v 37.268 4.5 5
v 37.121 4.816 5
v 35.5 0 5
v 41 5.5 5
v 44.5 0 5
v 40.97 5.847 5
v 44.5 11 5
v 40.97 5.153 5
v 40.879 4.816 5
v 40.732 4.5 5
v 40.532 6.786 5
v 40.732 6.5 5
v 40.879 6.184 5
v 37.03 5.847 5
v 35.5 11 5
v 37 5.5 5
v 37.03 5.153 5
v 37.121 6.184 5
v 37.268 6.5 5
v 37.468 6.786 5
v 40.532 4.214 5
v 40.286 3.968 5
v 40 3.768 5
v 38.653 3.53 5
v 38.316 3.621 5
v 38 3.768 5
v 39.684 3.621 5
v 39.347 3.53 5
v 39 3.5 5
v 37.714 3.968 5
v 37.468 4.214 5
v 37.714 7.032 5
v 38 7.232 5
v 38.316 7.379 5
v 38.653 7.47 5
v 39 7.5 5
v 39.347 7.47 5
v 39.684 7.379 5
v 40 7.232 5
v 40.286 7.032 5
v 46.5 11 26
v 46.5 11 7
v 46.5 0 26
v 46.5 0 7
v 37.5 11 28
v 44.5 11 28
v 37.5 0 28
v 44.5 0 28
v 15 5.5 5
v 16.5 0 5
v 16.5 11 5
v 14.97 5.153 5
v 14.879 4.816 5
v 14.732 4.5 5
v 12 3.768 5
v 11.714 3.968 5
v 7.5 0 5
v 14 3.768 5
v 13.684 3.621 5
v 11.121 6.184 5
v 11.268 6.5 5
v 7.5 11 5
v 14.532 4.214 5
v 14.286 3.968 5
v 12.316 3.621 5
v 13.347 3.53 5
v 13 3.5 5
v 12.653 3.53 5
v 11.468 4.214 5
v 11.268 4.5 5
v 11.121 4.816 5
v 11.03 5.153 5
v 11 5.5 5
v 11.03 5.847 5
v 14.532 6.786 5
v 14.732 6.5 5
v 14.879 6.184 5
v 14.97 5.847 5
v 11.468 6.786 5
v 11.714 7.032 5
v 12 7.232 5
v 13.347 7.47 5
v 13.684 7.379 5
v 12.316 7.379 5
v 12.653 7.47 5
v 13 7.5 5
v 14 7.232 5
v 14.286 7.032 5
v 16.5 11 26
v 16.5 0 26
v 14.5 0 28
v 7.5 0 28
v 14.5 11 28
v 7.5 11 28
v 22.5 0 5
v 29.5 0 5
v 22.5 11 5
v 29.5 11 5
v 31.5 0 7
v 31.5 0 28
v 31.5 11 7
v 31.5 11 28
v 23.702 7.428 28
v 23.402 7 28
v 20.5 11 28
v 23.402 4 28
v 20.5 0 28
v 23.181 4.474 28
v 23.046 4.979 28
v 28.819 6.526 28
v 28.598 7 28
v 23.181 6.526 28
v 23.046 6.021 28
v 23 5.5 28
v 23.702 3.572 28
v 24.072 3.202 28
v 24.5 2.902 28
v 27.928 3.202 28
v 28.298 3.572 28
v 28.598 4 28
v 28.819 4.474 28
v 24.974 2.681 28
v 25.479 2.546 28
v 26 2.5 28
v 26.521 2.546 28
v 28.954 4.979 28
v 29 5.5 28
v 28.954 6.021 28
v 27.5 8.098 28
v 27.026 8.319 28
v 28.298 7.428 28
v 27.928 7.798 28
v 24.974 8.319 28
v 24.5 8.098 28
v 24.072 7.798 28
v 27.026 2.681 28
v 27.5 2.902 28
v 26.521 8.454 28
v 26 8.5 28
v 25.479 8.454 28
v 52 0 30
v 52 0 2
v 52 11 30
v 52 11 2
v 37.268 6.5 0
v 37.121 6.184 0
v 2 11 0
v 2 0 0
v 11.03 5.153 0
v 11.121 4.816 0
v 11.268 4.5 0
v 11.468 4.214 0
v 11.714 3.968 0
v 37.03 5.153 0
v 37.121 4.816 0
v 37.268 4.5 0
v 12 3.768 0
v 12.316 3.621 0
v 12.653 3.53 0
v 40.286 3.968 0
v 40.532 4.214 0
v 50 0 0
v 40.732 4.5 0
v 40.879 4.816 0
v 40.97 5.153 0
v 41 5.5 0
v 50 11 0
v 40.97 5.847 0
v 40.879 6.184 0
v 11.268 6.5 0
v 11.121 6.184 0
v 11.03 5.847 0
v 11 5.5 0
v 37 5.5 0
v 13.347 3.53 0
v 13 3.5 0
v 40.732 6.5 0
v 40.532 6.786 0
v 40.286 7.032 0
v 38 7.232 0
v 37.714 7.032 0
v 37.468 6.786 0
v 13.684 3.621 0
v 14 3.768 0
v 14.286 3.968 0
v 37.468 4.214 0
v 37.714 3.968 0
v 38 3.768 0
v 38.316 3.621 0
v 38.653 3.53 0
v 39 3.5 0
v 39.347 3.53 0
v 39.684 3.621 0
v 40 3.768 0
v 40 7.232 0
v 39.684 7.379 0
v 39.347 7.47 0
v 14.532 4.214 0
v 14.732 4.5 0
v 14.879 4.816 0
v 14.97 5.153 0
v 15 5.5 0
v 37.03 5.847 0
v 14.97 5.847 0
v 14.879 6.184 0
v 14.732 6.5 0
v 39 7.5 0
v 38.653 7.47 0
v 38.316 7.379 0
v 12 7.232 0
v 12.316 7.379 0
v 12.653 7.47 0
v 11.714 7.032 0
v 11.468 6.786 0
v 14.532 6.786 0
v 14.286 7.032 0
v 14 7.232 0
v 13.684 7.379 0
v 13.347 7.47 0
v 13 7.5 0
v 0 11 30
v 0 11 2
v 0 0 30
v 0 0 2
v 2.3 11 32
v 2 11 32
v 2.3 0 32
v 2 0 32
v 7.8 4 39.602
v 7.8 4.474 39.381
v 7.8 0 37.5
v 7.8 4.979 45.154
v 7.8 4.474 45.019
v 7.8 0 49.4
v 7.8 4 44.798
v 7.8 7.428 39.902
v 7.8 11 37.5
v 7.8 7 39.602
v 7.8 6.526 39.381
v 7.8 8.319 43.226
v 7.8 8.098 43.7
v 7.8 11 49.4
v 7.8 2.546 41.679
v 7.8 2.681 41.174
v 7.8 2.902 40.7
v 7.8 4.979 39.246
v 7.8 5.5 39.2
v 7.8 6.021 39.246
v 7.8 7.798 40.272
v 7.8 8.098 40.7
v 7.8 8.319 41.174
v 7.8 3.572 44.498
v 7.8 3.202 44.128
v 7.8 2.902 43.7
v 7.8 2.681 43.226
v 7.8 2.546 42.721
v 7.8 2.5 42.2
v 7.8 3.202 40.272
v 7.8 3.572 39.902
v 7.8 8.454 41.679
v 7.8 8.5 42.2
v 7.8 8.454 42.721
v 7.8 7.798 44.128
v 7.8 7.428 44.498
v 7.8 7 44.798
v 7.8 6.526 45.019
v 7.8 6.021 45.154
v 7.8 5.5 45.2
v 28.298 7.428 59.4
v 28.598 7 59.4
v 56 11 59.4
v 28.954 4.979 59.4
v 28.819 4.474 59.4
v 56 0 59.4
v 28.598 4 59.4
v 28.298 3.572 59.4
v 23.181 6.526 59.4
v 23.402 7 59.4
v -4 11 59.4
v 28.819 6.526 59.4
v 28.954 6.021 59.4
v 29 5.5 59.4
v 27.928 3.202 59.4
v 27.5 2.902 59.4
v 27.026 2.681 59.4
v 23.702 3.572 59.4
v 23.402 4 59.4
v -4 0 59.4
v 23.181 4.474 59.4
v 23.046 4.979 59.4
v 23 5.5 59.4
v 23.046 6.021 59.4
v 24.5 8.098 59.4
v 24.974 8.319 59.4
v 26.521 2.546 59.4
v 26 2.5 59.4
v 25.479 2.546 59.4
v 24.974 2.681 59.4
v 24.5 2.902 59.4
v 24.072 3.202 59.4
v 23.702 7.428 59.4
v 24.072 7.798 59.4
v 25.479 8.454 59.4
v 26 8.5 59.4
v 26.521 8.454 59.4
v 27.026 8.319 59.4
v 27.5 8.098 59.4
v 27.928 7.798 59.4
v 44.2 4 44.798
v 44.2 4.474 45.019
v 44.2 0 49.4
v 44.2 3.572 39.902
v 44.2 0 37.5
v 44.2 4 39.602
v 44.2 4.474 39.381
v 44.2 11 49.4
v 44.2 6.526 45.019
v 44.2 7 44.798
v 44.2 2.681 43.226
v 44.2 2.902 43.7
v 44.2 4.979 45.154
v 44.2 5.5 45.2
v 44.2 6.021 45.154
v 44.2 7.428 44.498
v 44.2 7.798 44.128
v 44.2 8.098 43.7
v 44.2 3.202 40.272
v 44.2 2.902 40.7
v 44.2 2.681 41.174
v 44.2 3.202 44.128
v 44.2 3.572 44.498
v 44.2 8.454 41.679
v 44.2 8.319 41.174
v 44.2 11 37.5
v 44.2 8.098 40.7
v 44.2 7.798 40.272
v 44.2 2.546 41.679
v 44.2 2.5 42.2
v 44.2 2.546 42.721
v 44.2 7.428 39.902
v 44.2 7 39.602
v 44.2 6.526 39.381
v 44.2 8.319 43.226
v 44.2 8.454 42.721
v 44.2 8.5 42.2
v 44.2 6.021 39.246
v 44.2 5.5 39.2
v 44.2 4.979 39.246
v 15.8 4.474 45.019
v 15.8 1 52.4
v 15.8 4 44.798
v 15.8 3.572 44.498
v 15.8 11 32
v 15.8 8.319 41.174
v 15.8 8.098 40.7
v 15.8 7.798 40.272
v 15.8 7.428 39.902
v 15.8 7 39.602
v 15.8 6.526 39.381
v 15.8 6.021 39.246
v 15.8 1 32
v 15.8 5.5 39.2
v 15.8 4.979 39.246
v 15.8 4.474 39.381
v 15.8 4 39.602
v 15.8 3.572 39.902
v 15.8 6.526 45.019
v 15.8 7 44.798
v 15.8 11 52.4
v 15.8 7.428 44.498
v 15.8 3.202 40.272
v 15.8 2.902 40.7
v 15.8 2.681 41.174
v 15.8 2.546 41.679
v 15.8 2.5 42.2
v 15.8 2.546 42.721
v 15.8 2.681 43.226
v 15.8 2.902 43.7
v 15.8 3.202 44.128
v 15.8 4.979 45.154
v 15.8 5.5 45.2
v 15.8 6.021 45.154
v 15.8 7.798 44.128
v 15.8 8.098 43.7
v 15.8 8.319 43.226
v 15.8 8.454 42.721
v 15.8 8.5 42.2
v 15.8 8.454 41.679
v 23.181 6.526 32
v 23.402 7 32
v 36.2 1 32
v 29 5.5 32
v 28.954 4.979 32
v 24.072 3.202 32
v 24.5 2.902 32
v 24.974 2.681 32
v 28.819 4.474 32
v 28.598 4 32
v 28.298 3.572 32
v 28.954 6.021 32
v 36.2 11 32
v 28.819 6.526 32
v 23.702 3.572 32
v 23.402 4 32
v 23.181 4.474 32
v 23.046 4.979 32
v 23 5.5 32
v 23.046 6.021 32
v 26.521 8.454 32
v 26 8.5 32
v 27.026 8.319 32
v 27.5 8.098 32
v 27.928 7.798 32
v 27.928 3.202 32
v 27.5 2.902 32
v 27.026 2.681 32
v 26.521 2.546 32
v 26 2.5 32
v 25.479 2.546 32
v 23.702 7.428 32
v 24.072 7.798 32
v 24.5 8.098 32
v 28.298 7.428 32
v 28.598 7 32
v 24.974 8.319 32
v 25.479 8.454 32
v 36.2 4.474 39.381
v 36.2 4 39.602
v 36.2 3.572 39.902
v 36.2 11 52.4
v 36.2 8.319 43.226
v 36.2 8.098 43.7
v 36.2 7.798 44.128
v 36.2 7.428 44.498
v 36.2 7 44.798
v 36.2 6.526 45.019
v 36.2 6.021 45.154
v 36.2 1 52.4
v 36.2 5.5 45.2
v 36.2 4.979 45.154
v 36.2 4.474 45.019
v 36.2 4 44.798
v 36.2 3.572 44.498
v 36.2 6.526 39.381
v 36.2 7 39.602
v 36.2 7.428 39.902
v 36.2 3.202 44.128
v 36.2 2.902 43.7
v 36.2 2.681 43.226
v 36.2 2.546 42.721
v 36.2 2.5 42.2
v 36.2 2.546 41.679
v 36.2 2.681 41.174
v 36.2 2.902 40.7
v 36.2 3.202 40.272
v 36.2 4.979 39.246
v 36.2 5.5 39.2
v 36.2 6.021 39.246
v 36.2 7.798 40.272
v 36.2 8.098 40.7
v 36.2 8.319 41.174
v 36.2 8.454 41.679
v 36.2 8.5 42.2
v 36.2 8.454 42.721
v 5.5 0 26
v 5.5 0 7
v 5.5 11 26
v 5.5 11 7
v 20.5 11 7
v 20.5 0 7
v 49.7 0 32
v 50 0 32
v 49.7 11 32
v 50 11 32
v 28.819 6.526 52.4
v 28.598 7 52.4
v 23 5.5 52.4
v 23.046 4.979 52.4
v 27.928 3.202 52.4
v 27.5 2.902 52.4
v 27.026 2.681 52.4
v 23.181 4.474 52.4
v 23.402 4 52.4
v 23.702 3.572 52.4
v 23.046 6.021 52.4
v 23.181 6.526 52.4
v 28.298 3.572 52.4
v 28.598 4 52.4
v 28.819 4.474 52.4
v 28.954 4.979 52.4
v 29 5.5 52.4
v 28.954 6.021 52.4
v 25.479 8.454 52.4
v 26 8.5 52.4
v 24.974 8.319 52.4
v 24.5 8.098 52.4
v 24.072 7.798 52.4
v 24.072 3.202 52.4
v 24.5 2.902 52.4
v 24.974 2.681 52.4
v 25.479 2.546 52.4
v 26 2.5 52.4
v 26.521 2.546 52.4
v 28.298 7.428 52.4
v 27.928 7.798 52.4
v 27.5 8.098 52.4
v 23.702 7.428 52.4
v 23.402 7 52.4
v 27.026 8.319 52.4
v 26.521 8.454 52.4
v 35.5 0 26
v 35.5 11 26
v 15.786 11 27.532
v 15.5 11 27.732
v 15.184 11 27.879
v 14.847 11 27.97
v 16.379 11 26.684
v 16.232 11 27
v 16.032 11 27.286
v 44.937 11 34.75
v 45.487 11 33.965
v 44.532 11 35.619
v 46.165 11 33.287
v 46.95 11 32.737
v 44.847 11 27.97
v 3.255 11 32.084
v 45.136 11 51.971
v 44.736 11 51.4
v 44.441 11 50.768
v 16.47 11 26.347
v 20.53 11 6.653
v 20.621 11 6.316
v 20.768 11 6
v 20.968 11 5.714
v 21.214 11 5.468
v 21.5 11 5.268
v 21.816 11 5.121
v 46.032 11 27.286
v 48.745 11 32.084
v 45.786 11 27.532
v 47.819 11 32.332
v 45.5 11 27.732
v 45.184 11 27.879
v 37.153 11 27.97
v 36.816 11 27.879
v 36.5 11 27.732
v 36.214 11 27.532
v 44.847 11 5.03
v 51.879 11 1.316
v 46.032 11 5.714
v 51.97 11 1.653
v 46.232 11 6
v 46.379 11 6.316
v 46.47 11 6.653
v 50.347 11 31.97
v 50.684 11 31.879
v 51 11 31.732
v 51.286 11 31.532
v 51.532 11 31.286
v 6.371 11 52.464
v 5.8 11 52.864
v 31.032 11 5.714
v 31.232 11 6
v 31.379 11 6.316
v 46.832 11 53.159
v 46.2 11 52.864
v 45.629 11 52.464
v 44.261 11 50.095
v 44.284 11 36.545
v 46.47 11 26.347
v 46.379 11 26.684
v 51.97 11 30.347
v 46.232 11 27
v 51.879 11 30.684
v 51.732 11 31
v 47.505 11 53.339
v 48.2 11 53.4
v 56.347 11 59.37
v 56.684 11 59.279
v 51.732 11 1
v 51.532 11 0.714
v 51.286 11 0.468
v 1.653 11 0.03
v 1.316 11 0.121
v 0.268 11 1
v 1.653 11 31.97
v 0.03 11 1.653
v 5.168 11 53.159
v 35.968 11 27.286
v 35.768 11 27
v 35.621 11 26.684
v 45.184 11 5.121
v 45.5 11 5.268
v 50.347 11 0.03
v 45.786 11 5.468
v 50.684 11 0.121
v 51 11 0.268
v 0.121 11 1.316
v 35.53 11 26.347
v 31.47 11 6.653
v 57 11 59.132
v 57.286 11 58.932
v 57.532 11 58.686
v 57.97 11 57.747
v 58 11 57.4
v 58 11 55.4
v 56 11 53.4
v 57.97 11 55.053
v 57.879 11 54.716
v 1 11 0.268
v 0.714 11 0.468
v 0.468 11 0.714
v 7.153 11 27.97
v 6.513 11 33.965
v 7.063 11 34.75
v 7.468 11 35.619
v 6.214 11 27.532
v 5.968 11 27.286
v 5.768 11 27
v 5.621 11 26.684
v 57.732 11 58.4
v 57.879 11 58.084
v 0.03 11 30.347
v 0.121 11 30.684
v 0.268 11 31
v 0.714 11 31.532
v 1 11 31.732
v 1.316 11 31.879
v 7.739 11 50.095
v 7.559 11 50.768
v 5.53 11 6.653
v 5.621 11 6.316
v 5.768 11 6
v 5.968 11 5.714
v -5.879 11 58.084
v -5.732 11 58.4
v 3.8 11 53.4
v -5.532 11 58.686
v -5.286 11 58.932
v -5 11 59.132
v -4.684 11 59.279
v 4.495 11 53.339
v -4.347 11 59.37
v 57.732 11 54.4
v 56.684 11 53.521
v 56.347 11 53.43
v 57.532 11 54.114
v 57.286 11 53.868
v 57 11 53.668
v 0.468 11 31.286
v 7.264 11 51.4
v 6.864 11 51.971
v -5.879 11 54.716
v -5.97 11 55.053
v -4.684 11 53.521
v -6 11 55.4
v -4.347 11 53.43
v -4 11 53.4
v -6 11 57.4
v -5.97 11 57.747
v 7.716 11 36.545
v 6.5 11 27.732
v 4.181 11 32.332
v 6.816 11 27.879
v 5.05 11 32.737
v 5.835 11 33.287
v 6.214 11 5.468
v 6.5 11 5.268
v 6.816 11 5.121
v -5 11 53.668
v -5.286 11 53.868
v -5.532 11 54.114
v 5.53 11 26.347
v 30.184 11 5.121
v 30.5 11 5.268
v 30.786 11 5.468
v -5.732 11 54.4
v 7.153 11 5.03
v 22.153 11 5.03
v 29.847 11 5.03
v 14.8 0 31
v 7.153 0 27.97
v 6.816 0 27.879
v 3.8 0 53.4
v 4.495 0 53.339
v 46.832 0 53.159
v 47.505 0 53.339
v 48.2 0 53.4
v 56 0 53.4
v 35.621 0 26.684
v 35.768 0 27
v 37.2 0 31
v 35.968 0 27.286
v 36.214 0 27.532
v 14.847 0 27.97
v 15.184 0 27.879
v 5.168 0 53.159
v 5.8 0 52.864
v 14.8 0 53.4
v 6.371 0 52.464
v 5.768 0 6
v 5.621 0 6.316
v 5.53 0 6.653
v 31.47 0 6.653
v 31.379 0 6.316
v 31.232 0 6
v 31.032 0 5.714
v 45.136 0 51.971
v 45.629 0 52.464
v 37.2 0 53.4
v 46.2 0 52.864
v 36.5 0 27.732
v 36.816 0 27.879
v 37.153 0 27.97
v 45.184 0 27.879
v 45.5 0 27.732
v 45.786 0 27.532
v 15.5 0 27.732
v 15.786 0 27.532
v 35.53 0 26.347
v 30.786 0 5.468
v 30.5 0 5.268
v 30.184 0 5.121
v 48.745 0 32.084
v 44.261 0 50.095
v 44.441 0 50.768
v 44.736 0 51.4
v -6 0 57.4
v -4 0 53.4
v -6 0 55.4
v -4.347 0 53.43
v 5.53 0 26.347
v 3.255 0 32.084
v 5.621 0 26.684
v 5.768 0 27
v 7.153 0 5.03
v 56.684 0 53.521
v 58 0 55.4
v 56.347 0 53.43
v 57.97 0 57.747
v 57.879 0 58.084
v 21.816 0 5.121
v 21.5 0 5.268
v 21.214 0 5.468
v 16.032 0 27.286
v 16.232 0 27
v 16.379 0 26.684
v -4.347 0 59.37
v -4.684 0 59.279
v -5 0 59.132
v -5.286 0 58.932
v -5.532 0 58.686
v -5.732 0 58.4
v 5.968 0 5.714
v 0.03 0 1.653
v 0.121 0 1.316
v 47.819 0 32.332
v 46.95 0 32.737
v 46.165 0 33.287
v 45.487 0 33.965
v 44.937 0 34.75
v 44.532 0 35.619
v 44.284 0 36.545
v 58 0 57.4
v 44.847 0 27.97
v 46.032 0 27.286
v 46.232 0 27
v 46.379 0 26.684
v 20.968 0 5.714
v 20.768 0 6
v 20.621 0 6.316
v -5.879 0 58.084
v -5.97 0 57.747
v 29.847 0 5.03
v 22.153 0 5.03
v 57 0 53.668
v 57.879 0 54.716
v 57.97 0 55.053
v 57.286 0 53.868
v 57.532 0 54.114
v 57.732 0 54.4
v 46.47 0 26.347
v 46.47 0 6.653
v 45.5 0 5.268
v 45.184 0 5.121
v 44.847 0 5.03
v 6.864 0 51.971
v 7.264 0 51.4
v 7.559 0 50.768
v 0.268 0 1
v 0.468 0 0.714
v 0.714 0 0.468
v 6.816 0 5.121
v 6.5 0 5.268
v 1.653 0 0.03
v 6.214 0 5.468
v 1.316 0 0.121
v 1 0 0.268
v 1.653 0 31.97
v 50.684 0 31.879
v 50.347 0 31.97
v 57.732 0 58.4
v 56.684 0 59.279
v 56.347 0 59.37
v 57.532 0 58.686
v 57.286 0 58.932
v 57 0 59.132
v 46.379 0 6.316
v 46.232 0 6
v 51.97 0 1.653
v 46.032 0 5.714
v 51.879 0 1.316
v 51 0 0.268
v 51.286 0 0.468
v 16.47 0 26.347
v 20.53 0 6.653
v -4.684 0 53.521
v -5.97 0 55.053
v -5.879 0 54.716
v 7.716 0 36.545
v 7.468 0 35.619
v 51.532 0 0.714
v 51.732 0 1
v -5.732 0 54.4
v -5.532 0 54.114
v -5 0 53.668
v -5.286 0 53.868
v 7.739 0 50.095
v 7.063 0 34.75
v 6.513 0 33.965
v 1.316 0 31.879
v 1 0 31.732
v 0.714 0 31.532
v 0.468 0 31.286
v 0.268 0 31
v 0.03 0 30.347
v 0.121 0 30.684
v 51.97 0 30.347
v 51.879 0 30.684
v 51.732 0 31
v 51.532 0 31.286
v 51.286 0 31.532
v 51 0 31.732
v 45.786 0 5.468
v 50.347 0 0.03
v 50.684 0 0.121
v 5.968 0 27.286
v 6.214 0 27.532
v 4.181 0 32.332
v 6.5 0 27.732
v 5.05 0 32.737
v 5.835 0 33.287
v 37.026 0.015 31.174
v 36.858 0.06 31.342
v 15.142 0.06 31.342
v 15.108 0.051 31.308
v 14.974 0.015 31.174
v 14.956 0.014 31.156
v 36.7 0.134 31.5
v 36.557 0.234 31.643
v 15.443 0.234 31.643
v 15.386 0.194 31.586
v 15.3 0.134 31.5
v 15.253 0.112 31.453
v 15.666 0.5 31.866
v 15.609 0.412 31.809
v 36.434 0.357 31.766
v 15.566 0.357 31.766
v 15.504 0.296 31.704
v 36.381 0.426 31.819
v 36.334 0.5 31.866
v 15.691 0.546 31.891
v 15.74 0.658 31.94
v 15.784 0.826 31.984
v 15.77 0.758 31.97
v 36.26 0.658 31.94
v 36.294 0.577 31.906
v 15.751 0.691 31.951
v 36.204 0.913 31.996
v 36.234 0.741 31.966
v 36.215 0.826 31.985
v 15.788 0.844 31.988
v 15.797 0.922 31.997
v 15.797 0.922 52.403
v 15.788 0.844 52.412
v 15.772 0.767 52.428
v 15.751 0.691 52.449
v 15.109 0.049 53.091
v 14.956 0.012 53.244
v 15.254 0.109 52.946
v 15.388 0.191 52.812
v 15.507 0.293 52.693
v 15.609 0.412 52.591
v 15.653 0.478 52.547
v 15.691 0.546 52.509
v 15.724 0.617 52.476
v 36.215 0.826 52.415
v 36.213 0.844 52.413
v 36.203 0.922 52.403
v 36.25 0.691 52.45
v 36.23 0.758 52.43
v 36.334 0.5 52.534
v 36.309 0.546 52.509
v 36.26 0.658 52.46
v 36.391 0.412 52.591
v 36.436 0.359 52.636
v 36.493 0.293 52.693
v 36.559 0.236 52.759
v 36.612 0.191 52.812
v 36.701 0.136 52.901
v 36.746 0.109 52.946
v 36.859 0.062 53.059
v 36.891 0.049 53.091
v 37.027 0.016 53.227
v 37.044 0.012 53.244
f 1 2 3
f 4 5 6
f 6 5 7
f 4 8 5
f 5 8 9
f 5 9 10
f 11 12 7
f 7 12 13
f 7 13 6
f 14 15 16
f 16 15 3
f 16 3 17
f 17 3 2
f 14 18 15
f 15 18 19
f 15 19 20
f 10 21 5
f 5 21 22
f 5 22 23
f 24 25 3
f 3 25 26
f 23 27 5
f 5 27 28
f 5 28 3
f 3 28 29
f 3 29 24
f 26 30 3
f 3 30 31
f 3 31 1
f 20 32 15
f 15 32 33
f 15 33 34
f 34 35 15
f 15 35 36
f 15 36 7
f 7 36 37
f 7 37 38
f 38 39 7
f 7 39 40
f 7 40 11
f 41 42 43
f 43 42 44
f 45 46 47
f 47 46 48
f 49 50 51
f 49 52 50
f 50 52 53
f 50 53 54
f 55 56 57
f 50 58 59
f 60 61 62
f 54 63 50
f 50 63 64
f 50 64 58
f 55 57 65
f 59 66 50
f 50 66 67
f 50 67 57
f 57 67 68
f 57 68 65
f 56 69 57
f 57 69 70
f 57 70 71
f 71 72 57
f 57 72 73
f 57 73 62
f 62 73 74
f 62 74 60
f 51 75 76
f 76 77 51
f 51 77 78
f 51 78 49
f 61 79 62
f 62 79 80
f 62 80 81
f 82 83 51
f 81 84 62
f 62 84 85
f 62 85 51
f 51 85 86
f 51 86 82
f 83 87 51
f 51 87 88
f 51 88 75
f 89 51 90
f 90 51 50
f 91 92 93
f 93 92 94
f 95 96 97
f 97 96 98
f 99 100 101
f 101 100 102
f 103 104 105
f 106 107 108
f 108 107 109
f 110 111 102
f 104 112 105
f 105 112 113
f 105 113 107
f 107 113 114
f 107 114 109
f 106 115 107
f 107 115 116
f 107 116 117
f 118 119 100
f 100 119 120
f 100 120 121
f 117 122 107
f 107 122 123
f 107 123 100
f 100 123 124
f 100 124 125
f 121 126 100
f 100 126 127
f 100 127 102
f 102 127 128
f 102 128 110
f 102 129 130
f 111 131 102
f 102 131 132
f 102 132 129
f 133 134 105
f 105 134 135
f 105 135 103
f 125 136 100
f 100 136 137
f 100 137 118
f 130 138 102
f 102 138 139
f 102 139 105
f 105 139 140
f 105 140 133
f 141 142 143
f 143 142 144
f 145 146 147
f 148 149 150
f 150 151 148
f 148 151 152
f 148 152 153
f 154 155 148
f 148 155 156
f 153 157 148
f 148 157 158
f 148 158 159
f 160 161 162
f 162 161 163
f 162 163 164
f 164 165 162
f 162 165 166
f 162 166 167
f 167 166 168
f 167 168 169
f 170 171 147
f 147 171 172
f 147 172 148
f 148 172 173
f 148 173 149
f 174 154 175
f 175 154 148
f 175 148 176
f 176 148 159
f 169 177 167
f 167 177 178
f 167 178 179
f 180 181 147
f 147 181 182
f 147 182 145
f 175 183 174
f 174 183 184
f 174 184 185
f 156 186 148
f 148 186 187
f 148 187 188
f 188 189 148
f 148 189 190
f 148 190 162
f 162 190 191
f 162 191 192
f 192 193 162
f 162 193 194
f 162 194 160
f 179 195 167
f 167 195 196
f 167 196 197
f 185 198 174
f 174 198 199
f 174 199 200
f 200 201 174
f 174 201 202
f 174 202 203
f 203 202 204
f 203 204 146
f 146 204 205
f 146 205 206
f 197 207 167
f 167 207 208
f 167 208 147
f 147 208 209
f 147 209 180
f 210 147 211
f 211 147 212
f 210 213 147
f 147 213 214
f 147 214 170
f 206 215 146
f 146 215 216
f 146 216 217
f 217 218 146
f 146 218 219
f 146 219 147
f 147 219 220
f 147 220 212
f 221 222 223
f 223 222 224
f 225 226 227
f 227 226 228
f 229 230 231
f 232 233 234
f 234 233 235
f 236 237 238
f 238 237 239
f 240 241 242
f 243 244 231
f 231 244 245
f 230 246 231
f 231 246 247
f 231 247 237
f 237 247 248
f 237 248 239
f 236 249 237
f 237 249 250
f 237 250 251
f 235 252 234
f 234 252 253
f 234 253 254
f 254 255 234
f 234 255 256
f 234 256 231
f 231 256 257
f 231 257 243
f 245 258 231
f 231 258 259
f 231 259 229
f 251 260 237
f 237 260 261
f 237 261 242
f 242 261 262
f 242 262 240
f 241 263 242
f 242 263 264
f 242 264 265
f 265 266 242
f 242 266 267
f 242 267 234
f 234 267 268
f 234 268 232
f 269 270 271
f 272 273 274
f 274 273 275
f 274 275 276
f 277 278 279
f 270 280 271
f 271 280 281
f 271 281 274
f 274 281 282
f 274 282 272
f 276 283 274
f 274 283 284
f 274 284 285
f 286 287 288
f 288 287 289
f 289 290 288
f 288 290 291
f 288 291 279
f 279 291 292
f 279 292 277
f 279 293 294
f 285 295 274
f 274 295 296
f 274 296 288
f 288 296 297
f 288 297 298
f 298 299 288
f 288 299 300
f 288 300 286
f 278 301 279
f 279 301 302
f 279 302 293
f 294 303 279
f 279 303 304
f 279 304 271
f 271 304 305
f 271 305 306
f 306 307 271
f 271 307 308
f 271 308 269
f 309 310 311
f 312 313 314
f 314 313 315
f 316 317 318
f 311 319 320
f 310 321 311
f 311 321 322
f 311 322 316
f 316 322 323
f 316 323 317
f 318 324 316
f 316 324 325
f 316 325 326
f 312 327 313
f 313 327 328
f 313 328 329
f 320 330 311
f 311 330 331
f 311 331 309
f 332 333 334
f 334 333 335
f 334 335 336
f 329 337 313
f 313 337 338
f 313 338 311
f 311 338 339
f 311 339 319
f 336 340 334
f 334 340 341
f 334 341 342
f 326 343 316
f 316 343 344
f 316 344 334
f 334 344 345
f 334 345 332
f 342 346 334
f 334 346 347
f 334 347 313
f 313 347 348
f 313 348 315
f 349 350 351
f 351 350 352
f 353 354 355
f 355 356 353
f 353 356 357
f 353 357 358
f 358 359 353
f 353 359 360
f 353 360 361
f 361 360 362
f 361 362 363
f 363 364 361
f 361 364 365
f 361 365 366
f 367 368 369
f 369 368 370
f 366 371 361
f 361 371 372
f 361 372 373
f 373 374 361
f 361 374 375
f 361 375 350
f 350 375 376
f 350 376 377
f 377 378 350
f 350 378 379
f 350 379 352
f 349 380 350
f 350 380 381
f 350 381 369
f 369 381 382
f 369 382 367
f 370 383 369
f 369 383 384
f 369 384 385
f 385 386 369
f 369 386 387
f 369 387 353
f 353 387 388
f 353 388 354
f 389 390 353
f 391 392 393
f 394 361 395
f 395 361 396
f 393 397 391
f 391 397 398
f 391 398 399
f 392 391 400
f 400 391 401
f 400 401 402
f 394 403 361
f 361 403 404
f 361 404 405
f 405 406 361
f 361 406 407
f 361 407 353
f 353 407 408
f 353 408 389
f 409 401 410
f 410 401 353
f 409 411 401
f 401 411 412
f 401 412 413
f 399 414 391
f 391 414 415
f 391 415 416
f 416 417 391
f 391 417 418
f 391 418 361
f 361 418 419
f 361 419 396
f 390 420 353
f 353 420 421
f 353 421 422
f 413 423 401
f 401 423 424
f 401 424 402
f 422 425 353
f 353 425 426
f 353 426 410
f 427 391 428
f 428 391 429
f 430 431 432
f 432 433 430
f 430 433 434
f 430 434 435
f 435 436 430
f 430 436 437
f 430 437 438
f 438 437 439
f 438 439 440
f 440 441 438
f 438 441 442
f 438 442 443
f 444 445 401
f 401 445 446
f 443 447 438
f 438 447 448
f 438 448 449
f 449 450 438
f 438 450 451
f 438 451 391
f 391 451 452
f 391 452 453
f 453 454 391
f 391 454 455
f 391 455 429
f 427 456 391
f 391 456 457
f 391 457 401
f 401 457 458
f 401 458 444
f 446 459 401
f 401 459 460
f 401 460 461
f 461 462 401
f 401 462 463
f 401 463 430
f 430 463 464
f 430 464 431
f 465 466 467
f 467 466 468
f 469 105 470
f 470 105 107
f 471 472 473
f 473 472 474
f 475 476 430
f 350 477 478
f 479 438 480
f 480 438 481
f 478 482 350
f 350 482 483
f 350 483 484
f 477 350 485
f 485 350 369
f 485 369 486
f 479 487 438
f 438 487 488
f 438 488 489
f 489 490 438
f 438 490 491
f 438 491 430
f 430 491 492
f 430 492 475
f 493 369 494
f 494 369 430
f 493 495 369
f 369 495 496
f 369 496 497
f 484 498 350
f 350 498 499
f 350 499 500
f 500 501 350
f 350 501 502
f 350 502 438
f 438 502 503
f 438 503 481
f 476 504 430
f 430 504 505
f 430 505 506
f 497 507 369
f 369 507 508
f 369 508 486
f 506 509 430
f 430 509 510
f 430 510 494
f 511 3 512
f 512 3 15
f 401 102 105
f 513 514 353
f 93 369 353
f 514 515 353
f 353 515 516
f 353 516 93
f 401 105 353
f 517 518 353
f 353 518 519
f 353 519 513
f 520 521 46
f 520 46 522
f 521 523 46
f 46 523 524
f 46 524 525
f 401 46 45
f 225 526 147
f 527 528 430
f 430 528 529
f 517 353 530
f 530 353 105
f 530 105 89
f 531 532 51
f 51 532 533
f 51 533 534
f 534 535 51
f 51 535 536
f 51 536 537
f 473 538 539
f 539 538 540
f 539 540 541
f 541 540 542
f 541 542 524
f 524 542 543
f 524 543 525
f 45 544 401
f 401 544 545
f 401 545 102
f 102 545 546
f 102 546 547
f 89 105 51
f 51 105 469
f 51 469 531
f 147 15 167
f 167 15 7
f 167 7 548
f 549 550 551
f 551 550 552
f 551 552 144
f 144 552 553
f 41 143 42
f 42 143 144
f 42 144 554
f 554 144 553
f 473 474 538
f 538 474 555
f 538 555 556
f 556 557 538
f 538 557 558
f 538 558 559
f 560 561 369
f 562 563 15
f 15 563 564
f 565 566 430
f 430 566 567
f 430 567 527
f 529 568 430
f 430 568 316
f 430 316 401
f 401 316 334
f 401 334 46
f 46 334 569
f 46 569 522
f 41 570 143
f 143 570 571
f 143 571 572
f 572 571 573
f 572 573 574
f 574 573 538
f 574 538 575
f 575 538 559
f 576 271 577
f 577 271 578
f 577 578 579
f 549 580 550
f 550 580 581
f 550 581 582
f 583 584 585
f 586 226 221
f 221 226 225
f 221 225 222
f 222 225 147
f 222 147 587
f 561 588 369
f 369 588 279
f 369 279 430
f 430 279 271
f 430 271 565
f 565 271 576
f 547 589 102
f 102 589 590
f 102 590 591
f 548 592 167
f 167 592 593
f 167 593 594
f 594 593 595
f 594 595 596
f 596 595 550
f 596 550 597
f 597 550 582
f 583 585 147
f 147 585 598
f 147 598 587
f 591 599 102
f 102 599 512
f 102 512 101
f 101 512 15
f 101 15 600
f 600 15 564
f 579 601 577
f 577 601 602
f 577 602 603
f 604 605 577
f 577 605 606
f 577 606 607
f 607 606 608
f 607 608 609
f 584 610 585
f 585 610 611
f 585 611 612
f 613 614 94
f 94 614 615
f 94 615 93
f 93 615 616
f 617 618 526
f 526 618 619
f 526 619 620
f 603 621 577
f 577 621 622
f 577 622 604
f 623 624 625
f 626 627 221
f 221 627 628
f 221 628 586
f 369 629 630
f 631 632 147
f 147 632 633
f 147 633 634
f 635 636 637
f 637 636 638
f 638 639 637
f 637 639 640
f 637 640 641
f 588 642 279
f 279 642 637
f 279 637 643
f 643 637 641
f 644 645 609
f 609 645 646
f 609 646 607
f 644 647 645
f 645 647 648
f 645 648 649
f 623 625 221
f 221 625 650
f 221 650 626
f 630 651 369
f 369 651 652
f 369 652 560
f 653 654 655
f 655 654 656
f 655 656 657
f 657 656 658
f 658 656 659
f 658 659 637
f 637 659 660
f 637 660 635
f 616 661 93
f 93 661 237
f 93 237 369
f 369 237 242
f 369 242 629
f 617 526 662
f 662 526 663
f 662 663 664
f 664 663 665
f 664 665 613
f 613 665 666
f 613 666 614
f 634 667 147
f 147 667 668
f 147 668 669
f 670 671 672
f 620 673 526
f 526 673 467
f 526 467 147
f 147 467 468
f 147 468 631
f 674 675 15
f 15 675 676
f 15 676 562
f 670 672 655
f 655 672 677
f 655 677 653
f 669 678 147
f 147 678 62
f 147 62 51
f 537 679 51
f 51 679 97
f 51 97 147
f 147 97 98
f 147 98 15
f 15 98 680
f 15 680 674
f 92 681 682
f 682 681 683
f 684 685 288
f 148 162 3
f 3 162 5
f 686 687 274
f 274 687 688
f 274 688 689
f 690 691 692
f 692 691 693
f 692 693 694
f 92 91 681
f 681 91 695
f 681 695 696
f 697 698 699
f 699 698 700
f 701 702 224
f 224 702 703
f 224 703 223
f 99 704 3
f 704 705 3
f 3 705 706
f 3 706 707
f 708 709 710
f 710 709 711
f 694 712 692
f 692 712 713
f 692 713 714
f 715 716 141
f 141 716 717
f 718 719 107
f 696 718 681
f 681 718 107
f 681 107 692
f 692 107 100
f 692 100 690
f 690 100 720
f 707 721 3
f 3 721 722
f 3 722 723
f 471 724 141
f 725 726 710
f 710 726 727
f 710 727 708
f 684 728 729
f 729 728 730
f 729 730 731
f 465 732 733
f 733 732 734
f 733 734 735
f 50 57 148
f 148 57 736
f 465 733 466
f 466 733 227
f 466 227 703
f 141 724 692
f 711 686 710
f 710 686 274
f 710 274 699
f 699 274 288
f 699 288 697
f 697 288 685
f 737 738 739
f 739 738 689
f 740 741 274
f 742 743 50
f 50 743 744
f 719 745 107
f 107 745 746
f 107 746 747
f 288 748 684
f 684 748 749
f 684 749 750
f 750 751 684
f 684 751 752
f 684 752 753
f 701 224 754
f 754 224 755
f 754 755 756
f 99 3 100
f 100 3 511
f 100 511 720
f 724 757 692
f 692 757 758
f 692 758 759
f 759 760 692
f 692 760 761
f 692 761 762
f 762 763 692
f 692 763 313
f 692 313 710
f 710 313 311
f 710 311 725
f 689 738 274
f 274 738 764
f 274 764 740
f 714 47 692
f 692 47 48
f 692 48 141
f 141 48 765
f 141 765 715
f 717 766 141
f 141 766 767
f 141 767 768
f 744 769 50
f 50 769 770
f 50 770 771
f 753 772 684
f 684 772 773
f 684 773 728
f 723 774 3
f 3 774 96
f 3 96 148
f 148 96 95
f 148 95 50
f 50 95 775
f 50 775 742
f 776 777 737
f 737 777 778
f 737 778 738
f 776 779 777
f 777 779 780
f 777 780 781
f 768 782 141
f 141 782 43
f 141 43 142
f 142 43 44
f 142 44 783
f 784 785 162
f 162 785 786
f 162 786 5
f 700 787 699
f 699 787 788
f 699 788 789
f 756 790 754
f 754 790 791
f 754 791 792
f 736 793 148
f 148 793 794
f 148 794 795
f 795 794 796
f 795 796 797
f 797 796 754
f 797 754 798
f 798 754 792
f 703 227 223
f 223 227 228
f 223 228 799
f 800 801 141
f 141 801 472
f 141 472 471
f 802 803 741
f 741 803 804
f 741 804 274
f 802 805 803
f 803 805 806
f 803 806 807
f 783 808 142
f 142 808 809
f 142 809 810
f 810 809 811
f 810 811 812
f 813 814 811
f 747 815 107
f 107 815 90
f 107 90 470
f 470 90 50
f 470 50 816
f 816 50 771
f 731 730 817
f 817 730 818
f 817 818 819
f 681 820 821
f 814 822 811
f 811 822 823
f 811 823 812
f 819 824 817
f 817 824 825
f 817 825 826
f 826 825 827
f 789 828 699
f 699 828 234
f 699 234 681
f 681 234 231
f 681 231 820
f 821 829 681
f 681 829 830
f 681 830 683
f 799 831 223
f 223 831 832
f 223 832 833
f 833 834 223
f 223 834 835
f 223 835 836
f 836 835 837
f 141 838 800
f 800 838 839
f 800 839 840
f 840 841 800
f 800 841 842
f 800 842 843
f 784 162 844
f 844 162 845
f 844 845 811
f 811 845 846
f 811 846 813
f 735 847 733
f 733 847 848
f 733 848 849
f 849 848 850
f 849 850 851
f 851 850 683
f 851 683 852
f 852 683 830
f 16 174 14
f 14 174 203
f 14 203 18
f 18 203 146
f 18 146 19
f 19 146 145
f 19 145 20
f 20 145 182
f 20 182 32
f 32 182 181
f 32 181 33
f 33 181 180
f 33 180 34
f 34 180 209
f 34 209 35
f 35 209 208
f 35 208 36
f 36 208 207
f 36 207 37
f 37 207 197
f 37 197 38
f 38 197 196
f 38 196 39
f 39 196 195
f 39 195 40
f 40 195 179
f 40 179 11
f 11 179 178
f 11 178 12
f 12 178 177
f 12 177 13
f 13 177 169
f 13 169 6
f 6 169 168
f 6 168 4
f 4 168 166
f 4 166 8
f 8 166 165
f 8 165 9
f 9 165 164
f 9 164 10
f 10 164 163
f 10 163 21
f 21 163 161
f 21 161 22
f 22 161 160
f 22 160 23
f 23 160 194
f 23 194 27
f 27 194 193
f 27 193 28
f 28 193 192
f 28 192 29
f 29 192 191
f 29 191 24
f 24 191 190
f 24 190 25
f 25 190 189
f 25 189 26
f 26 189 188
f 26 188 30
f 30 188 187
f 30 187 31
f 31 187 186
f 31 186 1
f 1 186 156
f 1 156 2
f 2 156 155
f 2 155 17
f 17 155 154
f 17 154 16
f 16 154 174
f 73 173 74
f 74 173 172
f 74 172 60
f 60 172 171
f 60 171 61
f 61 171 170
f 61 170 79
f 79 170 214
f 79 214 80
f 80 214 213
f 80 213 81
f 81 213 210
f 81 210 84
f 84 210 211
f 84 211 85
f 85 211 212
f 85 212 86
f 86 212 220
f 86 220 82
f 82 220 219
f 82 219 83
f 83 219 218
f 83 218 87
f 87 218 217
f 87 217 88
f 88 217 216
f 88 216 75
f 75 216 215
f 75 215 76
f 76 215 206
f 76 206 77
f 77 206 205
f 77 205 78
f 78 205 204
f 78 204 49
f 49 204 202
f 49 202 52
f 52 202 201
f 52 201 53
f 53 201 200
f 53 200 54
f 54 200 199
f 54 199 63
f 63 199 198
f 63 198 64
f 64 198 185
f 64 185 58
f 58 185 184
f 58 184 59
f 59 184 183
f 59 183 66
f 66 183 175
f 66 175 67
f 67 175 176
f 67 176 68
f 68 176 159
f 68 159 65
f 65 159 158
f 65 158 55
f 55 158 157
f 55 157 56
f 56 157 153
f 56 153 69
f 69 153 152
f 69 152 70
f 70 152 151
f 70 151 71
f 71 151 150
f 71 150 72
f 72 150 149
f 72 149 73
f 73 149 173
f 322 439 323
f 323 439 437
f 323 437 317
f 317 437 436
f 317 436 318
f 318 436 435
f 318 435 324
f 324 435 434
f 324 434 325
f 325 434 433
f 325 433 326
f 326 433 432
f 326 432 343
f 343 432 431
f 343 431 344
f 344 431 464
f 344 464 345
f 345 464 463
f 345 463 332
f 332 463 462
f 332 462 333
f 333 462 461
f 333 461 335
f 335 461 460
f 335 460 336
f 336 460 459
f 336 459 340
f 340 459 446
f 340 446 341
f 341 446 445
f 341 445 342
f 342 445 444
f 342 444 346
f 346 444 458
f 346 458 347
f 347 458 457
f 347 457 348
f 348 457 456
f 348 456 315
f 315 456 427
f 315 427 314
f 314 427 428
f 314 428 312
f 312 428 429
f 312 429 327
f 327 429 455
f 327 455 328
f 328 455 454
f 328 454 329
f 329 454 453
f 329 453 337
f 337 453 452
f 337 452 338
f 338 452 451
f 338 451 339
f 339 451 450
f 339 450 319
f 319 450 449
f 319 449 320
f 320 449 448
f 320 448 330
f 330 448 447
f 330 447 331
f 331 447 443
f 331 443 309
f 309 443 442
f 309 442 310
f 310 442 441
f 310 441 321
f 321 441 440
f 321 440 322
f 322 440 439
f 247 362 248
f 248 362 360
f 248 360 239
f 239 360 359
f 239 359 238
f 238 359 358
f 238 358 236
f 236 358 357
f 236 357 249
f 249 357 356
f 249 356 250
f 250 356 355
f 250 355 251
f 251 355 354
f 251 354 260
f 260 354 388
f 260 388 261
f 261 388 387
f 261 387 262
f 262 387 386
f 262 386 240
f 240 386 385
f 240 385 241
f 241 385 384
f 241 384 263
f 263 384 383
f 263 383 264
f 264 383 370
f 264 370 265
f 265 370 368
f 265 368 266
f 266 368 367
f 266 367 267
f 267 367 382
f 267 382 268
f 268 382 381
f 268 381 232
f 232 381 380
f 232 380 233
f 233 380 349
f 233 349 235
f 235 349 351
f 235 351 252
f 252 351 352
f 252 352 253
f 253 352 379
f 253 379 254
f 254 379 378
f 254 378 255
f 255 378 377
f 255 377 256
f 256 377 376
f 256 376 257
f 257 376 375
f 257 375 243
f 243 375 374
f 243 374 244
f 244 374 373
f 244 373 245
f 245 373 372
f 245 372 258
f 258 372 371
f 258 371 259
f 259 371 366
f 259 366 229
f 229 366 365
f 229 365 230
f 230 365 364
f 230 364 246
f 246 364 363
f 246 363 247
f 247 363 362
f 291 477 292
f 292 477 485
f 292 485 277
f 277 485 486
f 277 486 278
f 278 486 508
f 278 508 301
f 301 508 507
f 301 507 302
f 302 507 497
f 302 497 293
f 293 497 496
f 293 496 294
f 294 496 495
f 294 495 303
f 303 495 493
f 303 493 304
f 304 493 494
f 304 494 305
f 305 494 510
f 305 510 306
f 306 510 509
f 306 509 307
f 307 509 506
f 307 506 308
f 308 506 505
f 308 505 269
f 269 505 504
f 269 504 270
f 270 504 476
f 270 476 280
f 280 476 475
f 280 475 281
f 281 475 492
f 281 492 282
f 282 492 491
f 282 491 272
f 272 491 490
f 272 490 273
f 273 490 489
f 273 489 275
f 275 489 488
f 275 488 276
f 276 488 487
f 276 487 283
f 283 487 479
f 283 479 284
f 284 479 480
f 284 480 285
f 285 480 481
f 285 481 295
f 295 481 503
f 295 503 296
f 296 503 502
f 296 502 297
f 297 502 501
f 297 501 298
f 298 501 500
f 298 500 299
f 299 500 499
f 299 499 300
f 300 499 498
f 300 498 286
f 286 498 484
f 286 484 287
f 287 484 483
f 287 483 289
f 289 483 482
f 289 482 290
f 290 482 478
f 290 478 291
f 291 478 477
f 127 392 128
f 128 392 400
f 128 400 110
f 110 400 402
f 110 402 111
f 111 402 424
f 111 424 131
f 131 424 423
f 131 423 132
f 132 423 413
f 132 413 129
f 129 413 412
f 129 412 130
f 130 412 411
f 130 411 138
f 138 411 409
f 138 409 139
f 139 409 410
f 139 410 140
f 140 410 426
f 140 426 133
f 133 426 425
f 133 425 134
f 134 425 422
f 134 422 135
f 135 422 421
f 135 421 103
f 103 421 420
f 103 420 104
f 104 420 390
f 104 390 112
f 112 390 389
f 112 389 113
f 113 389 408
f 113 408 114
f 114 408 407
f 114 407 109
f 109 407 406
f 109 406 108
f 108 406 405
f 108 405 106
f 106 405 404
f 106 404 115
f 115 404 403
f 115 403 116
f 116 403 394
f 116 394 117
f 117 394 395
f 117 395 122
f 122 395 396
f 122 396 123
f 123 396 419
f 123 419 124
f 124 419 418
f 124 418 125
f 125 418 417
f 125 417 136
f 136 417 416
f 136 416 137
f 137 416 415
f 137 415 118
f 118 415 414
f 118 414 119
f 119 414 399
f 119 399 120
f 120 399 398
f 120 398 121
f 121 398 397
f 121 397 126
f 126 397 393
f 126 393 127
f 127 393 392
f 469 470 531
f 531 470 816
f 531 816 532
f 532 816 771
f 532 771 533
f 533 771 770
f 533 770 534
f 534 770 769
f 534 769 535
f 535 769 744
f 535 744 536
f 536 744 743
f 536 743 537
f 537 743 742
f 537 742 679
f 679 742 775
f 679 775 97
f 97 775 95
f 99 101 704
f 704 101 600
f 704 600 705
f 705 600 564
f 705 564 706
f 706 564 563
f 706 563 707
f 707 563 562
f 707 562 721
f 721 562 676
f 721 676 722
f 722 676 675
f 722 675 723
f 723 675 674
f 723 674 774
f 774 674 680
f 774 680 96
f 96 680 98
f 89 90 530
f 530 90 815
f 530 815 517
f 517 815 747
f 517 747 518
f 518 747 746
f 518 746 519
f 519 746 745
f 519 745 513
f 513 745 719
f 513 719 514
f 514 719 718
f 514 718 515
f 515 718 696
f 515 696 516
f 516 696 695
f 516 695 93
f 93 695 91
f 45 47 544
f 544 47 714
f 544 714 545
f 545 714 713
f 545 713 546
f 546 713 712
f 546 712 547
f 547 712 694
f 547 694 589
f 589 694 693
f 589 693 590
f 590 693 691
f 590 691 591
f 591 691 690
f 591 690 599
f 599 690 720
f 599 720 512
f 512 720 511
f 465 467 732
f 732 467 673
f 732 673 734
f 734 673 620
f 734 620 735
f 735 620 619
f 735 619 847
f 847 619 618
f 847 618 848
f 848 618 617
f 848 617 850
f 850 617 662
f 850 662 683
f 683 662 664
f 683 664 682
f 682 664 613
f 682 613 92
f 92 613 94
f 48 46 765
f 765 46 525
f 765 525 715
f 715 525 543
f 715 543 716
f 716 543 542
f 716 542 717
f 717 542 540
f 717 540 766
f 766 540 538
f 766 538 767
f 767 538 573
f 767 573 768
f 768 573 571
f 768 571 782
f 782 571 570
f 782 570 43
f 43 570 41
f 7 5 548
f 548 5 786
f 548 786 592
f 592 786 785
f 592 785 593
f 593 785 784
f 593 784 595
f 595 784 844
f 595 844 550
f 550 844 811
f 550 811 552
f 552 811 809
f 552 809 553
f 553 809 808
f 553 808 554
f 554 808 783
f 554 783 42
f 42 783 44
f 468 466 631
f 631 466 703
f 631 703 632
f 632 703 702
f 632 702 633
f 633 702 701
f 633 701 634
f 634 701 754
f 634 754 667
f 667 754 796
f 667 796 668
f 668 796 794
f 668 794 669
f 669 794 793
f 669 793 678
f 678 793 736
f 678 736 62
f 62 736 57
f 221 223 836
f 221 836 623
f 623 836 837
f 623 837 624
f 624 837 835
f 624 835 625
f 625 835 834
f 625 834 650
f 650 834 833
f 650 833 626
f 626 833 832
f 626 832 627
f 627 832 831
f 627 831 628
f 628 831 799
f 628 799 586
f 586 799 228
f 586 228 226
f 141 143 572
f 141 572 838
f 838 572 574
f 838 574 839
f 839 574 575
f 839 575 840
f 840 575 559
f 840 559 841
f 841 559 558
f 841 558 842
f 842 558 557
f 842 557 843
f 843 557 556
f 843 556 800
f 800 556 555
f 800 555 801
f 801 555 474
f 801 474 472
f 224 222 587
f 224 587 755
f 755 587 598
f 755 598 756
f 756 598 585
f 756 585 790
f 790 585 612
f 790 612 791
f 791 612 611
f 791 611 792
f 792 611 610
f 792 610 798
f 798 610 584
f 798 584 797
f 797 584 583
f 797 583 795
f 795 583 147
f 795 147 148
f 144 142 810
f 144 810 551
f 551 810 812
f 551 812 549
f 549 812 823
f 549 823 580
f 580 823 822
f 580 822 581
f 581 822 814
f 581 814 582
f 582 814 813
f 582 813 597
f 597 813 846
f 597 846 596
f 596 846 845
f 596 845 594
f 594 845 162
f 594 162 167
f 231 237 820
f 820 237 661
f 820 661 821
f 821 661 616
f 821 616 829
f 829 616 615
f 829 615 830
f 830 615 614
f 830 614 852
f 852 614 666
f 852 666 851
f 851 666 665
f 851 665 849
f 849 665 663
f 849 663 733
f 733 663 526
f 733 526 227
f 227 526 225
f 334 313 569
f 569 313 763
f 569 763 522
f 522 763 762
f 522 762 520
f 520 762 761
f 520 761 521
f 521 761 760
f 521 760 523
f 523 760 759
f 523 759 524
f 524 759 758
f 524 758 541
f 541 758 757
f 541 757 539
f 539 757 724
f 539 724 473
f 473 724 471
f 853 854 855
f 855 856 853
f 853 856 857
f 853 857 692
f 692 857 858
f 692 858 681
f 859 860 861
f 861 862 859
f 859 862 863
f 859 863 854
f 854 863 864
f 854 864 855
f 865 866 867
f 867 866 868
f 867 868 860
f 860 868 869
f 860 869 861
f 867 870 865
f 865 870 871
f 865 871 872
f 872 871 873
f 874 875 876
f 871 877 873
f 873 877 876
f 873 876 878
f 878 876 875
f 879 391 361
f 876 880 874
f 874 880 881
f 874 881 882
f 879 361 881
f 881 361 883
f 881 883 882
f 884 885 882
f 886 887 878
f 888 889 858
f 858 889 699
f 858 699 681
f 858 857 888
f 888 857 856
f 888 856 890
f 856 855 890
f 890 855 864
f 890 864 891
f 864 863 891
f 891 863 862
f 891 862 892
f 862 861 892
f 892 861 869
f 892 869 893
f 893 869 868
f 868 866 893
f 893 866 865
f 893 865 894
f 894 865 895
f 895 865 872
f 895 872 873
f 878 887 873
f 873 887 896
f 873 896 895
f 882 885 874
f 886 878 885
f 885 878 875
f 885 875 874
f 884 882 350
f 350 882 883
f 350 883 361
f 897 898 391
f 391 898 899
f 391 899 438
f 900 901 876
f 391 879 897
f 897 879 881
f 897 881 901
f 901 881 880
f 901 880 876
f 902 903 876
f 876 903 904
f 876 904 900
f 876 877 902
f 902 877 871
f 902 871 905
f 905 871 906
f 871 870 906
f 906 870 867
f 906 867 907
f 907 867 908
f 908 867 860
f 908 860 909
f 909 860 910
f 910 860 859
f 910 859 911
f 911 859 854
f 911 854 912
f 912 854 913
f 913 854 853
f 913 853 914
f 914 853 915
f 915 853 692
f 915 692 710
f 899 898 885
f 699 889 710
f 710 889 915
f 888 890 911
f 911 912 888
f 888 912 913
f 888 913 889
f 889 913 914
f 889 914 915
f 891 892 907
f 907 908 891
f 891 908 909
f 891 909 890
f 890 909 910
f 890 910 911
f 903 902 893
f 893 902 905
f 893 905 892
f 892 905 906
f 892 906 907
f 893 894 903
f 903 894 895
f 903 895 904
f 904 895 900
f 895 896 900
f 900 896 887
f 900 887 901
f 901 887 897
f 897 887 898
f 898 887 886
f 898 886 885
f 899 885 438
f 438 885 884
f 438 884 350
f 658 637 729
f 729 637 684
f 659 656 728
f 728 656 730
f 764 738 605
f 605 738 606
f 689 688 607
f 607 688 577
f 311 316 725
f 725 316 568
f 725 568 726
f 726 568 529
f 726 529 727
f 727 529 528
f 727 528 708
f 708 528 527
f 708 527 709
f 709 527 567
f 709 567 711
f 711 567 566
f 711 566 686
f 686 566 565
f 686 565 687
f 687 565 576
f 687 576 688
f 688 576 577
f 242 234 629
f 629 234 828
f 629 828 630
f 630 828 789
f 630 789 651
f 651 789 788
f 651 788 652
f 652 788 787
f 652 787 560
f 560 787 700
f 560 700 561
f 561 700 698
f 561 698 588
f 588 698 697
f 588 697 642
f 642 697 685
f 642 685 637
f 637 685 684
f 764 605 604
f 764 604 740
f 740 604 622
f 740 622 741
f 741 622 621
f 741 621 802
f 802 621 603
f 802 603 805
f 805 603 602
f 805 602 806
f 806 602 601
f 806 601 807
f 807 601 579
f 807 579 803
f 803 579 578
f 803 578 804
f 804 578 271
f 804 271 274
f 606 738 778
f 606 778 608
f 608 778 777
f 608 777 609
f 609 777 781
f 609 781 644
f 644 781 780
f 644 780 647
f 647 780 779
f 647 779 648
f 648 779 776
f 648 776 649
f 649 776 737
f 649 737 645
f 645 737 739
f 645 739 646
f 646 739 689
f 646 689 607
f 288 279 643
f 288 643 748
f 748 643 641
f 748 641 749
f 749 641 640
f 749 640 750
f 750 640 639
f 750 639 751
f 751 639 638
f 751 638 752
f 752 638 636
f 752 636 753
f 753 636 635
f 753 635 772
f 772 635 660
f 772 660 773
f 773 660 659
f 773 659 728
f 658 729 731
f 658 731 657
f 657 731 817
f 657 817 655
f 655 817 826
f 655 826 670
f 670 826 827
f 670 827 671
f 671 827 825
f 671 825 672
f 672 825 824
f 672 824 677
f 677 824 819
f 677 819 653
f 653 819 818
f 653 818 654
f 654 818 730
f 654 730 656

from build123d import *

# Parameters (mm, degrees)
SKETCH1_W                      = 52
SKETCH1_H                      = 32
SKETCH1_W_2                    = 11
SKETCH1_H_2                    = 23
BOSS_EXTRUDE1_DEPTH            = 11
CUT_EXTRUDE1_REACH             = 81.708
SKETCH2_R                      = 2
CUT_EXTRUDE2_REACH             = 72.426
SKETCH3_R                      = 3
CUT_EXTRUDE2_DIRECTION_2_REACH = 72.426
CUT_EXTRUDE3_REACH             = 64.04
SKETCH4_R                      = 3
CUT_EXTRUDE3_DIRECTION_2_REACH = 64.04
FILLET1_R                      = 2
FILLET2_R                      = 5.5
FILLET3_R                      = 1
SKETCH5_W                      = 13.8
SKETCH5_H                      = 6
BOSS_EXTRUDE2_DEPTH            = 11
FILLET4_R                      = 4
FILLET5_R                      = 2


with BuildPart() as part:
    # Sketch1 → Boss-Extrude1 (new body)
    # profile 1 of 2: a face of its own
    with BuildSketch(Plane(origin=(0, 0, 0), x_dir=(1, 0, 0), z_dir=(0, 1, 0))):
        with Locations((26, -16)):
            Rectangle(SKETCH1_W, SKETCH1_H)
        with Locations((26, -16.5)):
            Rectangle(SKETCH1_W_2, SKETCH1_H_2, mode=Mode.SUBTRACT)
        with Locations((11, -16.5)):
            Rectangle(SKETCH1_W_2, SKETCH1_H_2, mode=Mode.SUBTRACT)
        with Locations((41, -16.5)):
            Rectangle(SKETCH1_W_2, SKETCH1_H_2, mode=Mode.SUBTRACT)
    # profile 2 of 2: a face of its own
    with BuildSketch(Plane(origin=(0, 0, 0), x_dir=(1, 0, 0), z_dir=(0, 1, 0))):
        Polygon((15.8, -32), (7.8, -32), (7.8, -59.4), (44.2, -59.4), (44.2, -32), (36.2, -32), (36.2, -52.4), (15.8, -52.4), align=None)
    extrude(amount=BOSS_EXTRUDE1_DEPTH)

    # Sketch2 → Cut-Extrude1 (cut, up to next)
    with BuildSketch(Plane(origin=(0, 0, 0), x_dir=(-1, 0, 0), z_dir=(0, 0, -1)), mode=Mode.PRIVATE) as cut_extrude1_sk1:
        with Locations((-39, 5.5)):
            Circle(SKETCH2_R)
    cut_extrude1_tool1 = extrude(cut_extrude1_sk1.sketch, amount=-CUT_EXTRUDE1_REACH, mode=Mode.PRIVATE) & part.part
    # Sketch2 → Cut-Extrude1 (cut, up to next)
    with BuildSketch(Plane(origin=(0, 0, 0), x_dir=(-1, 0, 0), z_dir=(0, 0, -1)), mode=Mode.PRIVATE) as cut_extrude1_sk2:
        with Locations((-13, 5.5)):
            Circle(SKETCH2_R)
    cut_extrude1_tool2 = extrude(cut_extrude1_sk2.sketch, amount=-CUT_EXTRUDE1_REACH, mode=Mode.PRIVATE) & part.part
    add(cut_extrude1_tool1.solids().sort_by_distance((39, 5.5, 0))[0], mode=Mode.SUBTRACT)
    add(cut_extrude1_tool2.solids().sort_by_distance((13, 5.5, 0))[0], mode=Mode.SUBTRACT)

    # Sketch3 → Cut-Extrude2 (cut, up to next)
    with BuildSketch(Plane(origin=(15.8, 0, 0), x_dir=(0, 0, -1), z_dir=(1, 0, 0)), mode=Mode.PRIVATE) as cut_extrude2_sk1:
        with Locations((-42.2, 5.5)):
            Circle(SKETCH3_R)
    cut_extrude2_tool1 = extrude(cut_extrude2_sk1.sketch, amount=-CUT_EXTRUDE2_REACH, mode=Mode.PRIVATE) & part.part
    add(cut_extrude2_tool1.solids().sort_by_distance((15.8, 5.5, 42.2))[0], mode=Mode.SUBTRACT)

    # Sketch3 → Cut-Extrude2 direction 2 (cut, up to next)
    with BuildSketch(Plane(origin=(15.8, 0, 0), x_dir=(0, 0, -1), z_dir=(1, 0, 0)), mode=Mode.PRIVATE) as cut_extrude2_direction_2_sk1:
        with Locations((-42.2, 5.5)):
            Circle(SKETCH3_R)
    cut_extrude2_direction_2_tool1 = extrude(cut_extrude2_direction_2_sk1.sketch, amount=CUT_EXTRUDE2_DIRECTION_2_REACH, mode=Mode.PRIVATE) & part.part
    add(cut_extrude2_direction_2_tool1.solids().sort_by_distance((15.8, 5.5, 42.2))[0], mode=Mode.SUBTRACT)

    # Sketch4 → Cut-Extrude3 (cut, up to next)
    with BuildSketch(Plane.XY.offset(32), mode=Mode.PRIVATE) as cut_extrude3_sk1:
        with Locations(Location((26, 5.5, 0), (0, 0, 180))):
            Circle(SKETCH4_R)
    cut_extrude3_tool1 = extrude(cut_extrude3_sk1.sketch, amount=-CUT_EXTRUDE3_REACH, mode=Mode.PRIVATE) & part.part
    add(cut_extrude3_tool1.solids().sort_by_distance((26, 5.5, 32))[0], mode=Mode.SUBTRACT)

    # Sketch4 → Cut-Extrude3 direction 2 (cut, up to next)
    with BuildSketch(Plane.XY.offset(32), mode=Mode.PRIVATE) as cut_extrude3_direction_2_sk1:
        with Locations(Location((26, 5.5, 0), (0, 0, 180))):
            Circle(SKETCH4_R)
    cut_extrude3_direction_2_tool1 = extrude(cut_extrude3_direction_2_sk1.sketch, amount=CUT_EXTRUDE3_DIRECTION_2_REACH, mode=Mode.PRIVATE) & part.part
    add(cut_extrude3_direction_2_tool1.solids().sort_by_distance((26, 5.5, 32))[0], mode=Mode.SUBTRACT)

    # Fillet1
    fillet1_edges = [part.edges().sort_by_distance(p)[0] for p in [
        (35.5, 5.5, 28),
        (46.5, 5.5, 28),
        (46.5, 5.5, 5),
        (5.5, 5.5, 5),
        (5.5, 5.5, 28),
        (16.5, 5.5, 28),
        (20.5, 5.5, 5),
        (31.5, 5.5, 5),
        (52, 5.5, 32),
        (0, 5.5, 32),
        (0, 5.5, 0),
        (52, 5.5, 0),
    ]]
    fillet(fillet1_edges, radius=FILLET1_R)

    # Fillet2
    fillet2_edges = [part.edges().sort_by_distance(p)[0] for p in [
        (44.2, 5.5, 32),
        (7.8, 5.5, 32),
    ]]
    fillet(fillet2_edges, radius=FILLET2_R)

    # Fillet3
    fillet3_edges = [part.edges().sort_by_distance(p)[0] for p in [
        (26, 0, 52.4),
        (36.2, 0, 42.2),
        (26, 0, 32),
        (15.8, 0, 42.2),
    ]]
    fillet(fillet3_edges, radius=FILLET3_R)

    # Sketch5 → Boss-Extrude2 (add)
    with BuildSketch(Plane.XZ):
        with Locations((0.9, 56.4)):
            Rectangle(SKETCH5_W, SKETCH5_H)
        with Locations((51.1, 56.4)):
            Rectangle(SKETCH5_W, SKETCH5_H)
    extrude(amount=-BOSS_EXTRUDE2_DEPTH)

    # Fillet4
    fillet4_edges = [part.edges().sort_by_distance(p)[0] for p in [
        (7.8, 5.5, 53.4),
        (44.2, 5.5, 53.4),
    ]]
    fillet(fillet4_edges, radius=FILLET4_R)

    # Fillet5
    fillet5_edges = [part.edges().sort_by_distance(p)[0] for p in [
        (-6, 5.5, 53.4),
        (-6, 5.5, 59.4),
        (58, 5.5, 59.4),
        (58, 5.5, 53.4),
    ]]
    fillet(fillet5_edges, radius=FILLET5_R)


solid = part.part
